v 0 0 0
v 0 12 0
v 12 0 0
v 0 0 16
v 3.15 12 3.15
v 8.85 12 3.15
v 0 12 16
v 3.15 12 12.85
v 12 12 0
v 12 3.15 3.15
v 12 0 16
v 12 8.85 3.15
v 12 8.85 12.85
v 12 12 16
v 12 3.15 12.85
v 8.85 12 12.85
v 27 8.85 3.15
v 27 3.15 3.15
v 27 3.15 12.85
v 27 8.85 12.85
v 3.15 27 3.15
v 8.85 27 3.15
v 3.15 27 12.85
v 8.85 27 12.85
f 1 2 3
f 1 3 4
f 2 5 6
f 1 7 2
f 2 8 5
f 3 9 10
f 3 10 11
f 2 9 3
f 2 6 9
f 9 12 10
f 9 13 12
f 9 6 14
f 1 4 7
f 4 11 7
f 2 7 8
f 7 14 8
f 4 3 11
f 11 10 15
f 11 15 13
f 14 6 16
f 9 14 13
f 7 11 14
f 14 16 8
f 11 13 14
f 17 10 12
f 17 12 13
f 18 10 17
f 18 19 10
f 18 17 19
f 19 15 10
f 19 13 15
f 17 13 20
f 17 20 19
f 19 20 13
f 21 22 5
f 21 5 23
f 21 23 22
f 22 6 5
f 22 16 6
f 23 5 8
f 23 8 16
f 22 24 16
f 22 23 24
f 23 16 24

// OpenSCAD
// file: ../../lib/emboss.scad
// cad/lib/emboss.scad
include <../generated/dims.scad>

module engrave(code, at, z, size = LABEL_SIZE, facing = -1, spin = 0) {
    if (facing < 0)
        translate([at[0] + LABEL_DEPTH, at[1], z]) rotate([90, 0, -90])
            linear_extrude(LABEL_DEPTH + 0.01) rotate(spin) text(code, size = size, halign = "center", valign = "center");
    else
        translate([at[0] - LABEL_DEPTH, at[1], z]) rotate([90, 0, 90])
            linear_extrude(LABEL_DEPTH + 0.01) rotate(-spin) text(code, size = size, halign = "center", valign = "center");
}
// file: ../dims.scad
MAX_SEG = 240.0;
JOINT_GAP = 1.0;
DEPTH = 63.0;
FRAME_W = 58.0;
FRAME_BODY = 40.0;
TRANSOM_W = 70.0;
TRANSOM_HALF_BODY = 17.0;
SASH_W = 51.0;
SASH_BODY = 33.0;
SASH_Y0 = 2.0;
SASH_GAP = 13.0;
STAY_W = 14.0;
SCREEN_W = 30.0;
SCREEN_DEPTH = 20.0;
SCREEN_OVERLAP = 10.0;
SCREEN_SHELL = 4.0;
GLASS_T = 24.0;
TWINWALL_T = 16.0;
GLASS_CLEAR = 3.0;
GASKET_T = 3.0;
GASKET_IN = 4.0;
GLASS_EDGE = 43.0;
TRANSOM_GLASS = 20.0;
SASH_GLASS = 36.0;
STOP_T = 8.0;
GLASS_Y0 = 11.0;
BEAD_W = 16.0;
BEAD_T = 10.0;
KEY_Y = 43.0;
KEY_D = 4.0;
KEY_H = 4.0;
KEY_LIP = 0.8;
KEY_THROAT = 1.2;
FIN_Y0 = 20.0;
FIN_Y1 = 28.0;
FIN_L = 8.0;
ISTOP_Y0 = 54.0;
FLANGE_Y1 = 17.0;
FLANGE_L = 11.0;
LIP_Y0 = 46.0;
LIP_Y1 = 52.0;
LIP_L = 8.0;
KERF_W = 3.0;
KERF_D = 5.0;
MAG_W = 13.0;
MAG_D = 2.0;
SPLINE_W = 4.0;
SPLINE_D = 5.0;
SPACER_W = 12.0;
ACRYLIC_T = 4.0;
SETTING_L = 100.0;
WEEP_CAP_H = 12.0;
WEEP_CAP_T = 1.5;
TUBE_FRAME = [20.0, 20.0];
TUBE_TRANSOM = [20.0, 40.0];
TUBE_SASH = [20.0, 20.0];
TUBE_SCREEN = [10.0, 10.0];
SOCKET_FRAME = 28.0;
SOCKET_SASH = 21.0;
SOCKET_SCREEN = 12.0;
TUBE_END_CLEAR = 1.5;
TUBE_CLEAR = 0.3;
MIN_SHELL = 6.0;
CHAMBER_WALL = 2.5;
MIN_SKIN = 1.5;
END_CAP = 4.0;
CORD_D = 3.0;
CORD_INSET = 1.5;
FIX_Y = 16.0;
FIX_Y_IN = 48.0;
FIX_DZ = 7.0;
FIX_D = 5.0;
FIX_CB_D = 10.0;
FIX_CB_L = 6.0;
FIX_BOSS_D = 15.0;
TUBE_SCREW_D = 4.2;
CSK_D = 8.6;
TRANSOM_SCREW_X = 39.0;
INSERT_M4_D = 5.6;
INSERT_M4_L = 8.0;
BOSS_PITCH = 24.0;
CAM_ALIGN_TOL = 1.0;
DOVE_W = 16.0;
DOVE_FLARE = 3.0;
DOVE_D = 6.0;
DOVE_CLEAR = 0.3;
LOCK_U = 3.0;
LOCK_D = 3.3;
LOCK_L = 22.0;
NODE_FIX_OFFSET = 25.0;
SHOE_WALL = 3.0;
HINGE_BOSS_X = 21.0;
CAM_BOSS_X = 47.0;
TRANSOM_MAG_X = 20.0;
LABEL_DEPTH = 0.6;
LABEL_SIZE = 5.0;
BEAD_LABEL = 3.0;
WEEP_W = 20.0;
WEEP_H = 5.0;
SILL_SLOPE_DEG = 8.0;
NOSE_KEY_X = 10.0;
NOSE_KEY_W = 6.0;
NOSE_KEY_D = 4.0;
NOSE_PROJECTION = 15.0;
MULLION_W = 70.0;
MULLION_HALF_BODY = 17.0;
MULLION_DOVE_D = 4.0;
VSLOT_SHIFT = 3.0;
VSLOT_MOUTH = 9.16;
VSLOT_NECK = 6.25;
VSLOT_LIP = 1.8;
VSLOT_FLOOR = 6.1;
VSLOT_SHOULDER = [5.6, 8.5];
VSLOT_TIP = [5.0, 5.8];
VSLOT_SCREW_D = 5.5;
VSLOT_CSK_D = 10.0;
VSLOT_M5_L = [10, 12, 16, 20, 25, 30, 35, 40];
VSLOT_TRANSOM_X = 41.25;
EDGE_R = 2.0;
JOINT_BEVEL = 0.8;
BEVEL_STEP = 0.2;
HANDLE_R = 3.0;
// file: ../../parts/acrylic_spacer.scad
// cad/parts/acrylic_spacer.scad
include <../generated/dims.scad>
use <../profile.scad>
use <../lib/emboss.scad>

function spacer_t(gap) = is_undef(gap) ? GLASS_T - 2 * ACRYLIC_T : gap;

module spacer_channel(gap) { rect(3, 3, SPACER_W - 3, spacer_t(gap) - 3); }

module acrylic_spacer(len, code, gap) {
    difference() {
        linear_extrude(len) rect(0, 0, SPACER_W, spacer_t(gap));
        translate([0, 0, -0.01]) linear_extrude(len + 0.02) spacer_channel(gap);
        for (z = [10 : 10 : len - 5])
            translate([SPACER_W - 3.5, spacer_t(gap) / 2, z]) rotate([0, 90, 0]) cylinder(d = 2, h = 4, $fn = 12);
        engrave(code, [0, spacer_t(gap) / 2], len / 2, 3);
    }
}

module acrylic_spacer_corner(code, gap) {
    leg = 15;
    plug = [SPACER_W - 6 - 0.3, spacer_t(gap) - 6 - 0.3];
    linear_extrude(spacer_t(gap)) square([SPACER_W, SPACER_W]);
    translate([SPACER_W, 3.15, 3.15]) cube([leg, plug[0], plug[1]]);
    translate([3.15, SPACER_W, 3.15]) cube([plug[0], leg, plug[1]]);
}
// main file
use <../../parts/acrylic_spacer.scad>
acrylic_spacer_corner("AC");
